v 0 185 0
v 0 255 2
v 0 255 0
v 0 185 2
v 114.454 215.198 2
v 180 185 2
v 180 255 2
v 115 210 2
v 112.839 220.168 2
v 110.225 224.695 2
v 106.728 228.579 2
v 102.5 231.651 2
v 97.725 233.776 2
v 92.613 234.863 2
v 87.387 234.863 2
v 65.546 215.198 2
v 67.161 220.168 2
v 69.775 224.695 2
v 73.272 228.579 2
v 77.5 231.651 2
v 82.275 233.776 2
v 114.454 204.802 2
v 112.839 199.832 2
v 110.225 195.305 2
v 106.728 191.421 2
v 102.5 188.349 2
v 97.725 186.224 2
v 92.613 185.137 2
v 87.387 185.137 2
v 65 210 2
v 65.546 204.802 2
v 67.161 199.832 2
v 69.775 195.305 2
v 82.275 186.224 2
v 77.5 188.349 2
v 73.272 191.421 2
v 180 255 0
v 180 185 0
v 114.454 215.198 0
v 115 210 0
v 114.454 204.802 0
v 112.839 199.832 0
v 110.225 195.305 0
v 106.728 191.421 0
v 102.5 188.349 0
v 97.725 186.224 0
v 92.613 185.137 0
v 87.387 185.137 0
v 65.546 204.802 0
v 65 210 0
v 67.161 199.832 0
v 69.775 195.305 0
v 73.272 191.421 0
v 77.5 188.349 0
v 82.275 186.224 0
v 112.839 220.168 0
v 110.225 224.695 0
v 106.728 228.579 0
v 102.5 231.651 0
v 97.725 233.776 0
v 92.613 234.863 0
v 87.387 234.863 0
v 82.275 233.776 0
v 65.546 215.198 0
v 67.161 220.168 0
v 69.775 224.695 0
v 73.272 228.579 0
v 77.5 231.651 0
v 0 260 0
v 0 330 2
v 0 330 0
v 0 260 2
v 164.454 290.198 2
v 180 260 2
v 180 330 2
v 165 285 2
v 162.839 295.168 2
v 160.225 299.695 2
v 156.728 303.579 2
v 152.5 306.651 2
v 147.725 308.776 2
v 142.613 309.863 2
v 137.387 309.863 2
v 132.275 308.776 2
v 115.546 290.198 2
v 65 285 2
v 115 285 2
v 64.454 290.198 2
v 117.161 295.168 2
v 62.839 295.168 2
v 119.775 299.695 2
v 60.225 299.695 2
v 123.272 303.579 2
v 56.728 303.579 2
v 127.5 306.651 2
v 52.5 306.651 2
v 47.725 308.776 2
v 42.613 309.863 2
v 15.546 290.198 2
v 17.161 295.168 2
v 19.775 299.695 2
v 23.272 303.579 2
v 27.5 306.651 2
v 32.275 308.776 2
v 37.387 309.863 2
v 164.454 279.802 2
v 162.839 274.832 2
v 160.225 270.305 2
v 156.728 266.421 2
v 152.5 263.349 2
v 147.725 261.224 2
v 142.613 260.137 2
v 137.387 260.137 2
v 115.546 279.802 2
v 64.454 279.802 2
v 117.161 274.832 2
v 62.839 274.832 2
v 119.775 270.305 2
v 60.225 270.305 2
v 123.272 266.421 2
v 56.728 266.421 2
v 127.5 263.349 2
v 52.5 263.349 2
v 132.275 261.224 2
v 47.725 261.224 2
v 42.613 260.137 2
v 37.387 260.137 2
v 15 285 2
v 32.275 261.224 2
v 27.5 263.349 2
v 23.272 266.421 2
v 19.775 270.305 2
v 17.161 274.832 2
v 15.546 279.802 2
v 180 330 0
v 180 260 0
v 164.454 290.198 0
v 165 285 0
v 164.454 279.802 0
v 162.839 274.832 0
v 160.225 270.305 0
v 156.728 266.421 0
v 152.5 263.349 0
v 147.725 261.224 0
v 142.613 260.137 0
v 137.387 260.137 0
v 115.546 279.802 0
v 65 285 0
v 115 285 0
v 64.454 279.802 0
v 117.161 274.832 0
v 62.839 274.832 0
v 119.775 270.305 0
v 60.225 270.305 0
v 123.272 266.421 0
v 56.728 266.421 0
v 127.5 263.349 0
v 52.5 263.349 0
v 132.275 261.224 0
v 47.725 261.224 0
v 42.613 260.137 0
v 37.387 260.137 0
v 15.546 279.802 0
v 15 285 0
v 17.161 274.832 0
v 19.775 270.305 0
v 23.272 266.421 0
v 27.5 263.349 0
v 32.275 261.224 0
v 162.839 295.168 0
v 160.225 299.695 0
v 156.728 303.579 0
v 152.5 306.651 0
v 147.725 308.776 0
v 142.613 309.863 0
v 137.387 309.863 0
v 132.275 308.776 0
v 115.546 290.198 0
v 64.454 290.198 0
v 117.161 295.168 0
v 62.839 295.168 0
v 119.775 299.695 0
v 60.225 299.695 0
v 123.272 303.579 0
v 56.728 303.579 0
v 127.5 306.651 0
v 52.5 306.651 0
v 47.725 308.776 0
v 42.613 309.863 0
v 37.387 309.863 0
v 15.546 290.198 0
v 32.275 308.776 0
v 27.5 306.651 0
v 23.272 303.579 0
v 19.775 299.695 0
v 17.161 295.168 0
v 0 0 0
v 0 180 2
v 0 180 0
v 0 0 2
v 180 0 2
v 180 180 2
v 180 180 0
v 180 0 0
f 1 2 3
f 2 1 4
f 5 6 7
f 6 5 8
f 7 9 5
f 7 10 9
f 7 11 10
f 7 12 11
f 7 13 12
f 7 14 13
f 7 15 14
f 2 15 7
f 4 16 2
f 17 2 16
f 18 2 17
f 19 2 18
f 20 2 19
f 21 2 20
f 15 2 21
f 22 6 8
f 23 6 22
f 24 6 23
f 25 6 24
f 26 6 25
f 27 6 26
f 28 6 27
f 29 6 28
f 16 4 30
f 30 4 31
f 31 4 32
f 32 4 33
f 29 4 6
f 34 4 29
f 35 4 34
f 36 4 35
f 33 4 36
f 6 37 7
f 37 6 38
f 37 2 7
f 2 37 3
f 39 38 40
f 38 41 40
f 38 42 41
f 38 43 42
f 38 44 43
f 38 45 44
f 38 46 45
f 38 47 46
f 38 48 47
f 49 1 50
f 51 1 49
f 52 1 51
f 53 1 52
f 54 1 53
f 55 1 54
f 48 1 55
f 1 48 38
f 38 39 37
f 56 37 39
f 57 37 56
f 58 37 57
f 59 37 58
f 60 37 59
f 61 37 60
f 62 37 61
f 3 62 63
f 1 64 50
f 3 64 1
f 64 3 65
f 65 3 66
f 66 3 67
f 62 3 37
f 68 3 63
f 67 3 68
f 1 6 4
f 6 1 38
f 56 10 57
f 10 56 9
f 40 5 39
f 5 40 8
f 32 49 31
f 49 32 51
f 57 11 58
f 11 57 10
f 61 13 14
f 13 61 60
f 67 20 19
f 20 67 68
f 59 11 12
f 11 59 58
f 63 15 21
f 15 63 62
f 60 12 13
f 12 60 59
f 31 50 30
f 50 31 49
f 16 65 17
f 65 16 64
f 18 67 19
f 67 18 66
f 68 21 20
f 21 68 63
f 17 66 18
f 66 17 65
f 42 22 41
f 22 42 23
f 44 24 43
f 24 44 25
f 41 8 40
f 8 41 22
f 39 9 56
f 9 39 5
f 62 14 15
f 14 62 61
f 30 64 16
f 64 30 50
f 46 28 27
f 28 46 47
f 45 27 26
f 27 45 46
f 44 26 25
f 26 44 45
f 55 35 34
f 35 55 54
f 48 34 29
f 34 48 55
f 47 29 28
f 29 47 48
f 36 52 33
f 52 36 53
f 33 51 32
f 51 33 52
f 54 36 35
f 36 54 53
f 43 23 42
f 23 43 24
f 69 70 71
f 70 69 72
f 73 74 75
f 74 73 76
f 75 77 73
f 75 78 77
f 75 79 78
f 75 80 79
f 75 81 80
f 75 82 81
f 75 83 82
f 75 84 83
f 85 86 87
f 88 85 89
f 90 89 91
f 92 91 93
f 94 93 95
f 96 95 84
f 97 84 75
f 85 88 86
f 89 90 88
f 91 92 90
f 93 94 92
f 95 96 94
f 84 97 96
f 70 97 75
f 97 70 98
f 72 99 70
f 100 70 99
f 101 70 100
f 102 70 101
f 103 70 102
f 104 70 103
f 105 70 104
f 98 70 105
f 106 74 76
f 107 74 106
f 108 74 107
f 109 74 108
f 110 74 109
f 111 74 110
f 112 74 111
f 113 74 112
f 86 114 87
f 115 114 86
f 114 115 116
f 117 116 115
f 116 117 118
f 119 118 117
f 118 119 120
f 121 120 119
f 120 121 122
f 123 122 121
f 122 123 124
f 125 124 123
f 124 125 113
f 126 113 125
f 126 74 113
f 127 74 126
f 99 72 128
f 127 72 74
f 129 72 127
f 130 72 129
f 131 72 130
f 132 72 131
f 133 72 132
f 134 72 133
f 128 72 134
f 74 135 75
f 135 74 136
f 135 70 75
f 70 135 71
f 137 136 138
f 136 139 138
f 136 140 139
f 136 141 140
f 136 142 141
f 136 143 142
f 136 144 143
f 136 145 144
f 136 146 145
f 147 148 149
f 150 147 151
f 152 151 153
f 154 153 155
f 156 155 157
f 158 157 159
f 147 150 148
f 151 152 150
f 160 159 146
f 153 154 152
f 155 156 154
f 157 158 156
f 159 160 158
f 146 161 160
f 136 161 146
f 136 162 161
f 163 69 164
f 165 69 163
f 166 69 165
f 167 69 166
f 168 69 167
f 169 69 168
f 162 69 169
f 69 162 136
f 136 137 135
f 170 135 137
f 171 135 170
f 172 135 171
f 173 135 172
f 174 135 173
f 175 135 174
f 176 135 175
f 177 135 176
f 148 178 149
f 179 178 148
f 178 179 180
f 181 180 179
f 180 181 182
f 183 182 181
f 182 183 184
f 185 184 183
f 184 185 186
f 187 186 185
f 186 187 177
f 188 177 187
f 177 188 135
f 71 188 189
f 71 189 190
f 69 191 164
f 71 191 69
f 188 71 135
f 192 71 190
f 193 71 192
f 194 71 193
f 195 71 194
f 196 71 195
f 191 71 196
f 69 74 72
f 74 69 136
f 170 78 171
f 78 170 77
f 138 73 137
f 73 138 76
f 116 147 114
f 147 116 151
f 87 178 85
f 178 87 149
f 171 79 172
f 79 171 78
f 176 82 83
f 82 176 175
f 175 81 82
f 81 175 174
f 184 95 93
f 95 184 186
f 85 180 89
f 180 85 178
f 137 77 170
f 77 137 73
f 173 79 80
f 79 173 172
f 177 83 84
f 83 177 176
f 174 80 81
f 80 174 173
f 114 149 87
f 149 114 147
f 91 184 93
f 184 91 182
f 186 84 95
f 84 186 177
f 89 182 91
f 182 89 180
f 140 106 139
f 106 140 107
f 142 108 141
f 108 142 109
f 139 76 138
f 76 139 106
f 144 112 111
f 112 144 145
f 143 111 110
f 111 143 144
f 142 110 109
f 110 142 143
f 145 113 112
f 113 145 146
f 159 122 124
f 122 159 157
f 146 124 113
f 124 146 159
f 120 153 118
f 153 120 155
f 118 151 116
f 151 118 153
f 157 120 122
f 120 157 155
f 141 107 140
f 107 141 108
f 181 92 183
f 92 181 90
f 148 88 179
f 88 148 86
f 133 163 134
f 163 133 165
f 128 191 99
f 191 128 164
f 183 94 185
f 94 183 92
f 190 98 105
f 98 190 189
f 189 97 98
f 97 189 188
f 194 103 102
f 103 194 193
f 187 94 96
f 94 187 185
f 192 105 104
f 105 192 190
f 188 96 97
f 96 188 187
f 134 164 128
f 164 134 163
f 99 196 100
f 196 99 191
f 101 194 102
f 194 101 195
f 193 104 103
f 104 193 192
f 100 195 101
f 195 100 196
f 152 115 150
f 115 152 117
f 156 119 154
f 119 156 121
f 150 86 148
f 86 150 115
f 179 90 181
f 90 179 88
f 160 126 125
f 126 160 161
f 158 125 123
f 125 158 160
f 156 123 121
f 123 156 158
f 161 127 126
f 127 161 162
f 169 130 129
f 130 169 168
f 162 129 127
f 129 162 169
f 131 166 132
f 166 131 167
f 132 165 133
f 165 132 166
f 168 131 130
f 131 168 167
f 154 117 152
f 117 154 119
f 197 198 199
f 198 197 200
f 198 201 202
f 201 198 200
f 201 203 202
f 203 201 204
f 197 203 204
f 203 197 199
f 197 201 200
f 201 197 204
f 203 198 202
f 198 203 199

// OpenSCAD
//alle Maße in mm
Pd = 2; //plattendicke ist 2mm

//Maße Grundplatte
Lg = 180; //Länge Grundplatte
Bg = Lg;  //Breite Grundplatte

//zeichne Grundplatte
cube(size = [Lg,Bg,Pd], center = false);

//Seitenwand 1-Loch
Hs1 = 70;  //Höhe
translate ([0,Bg+5,0]){
    difference() {
        cube (size = [Lg,Hs1,Pd], center = false);
        translate ([90,25,0]){cylinder (h = Pd+6, d = 50, center =   true);}
        }
    }
    
//Seitenwand 2-Löcher
translate ([0,Bg+Hs1+10,0]){
    difference() {
        cube (size = [Lg,Hs1,Pd], center = false);
        translate ([140,25,0]){cylinder (h = Pd+6, d = 50, center =   true);}
        translate ([40,25,0]) {cylinder (h = Pd+6, d = 50, center =   true);}
        }
    }
 
 //Platteneinlage
/*
Be=Bg-2*(Pd+10);
Le = Lg-2*Pd;
color(c=[100/255,100/255,100/255])translate([Pd,Pd+10,0]){cube(size = [Le,Be,Pd], center = false);}
 */
